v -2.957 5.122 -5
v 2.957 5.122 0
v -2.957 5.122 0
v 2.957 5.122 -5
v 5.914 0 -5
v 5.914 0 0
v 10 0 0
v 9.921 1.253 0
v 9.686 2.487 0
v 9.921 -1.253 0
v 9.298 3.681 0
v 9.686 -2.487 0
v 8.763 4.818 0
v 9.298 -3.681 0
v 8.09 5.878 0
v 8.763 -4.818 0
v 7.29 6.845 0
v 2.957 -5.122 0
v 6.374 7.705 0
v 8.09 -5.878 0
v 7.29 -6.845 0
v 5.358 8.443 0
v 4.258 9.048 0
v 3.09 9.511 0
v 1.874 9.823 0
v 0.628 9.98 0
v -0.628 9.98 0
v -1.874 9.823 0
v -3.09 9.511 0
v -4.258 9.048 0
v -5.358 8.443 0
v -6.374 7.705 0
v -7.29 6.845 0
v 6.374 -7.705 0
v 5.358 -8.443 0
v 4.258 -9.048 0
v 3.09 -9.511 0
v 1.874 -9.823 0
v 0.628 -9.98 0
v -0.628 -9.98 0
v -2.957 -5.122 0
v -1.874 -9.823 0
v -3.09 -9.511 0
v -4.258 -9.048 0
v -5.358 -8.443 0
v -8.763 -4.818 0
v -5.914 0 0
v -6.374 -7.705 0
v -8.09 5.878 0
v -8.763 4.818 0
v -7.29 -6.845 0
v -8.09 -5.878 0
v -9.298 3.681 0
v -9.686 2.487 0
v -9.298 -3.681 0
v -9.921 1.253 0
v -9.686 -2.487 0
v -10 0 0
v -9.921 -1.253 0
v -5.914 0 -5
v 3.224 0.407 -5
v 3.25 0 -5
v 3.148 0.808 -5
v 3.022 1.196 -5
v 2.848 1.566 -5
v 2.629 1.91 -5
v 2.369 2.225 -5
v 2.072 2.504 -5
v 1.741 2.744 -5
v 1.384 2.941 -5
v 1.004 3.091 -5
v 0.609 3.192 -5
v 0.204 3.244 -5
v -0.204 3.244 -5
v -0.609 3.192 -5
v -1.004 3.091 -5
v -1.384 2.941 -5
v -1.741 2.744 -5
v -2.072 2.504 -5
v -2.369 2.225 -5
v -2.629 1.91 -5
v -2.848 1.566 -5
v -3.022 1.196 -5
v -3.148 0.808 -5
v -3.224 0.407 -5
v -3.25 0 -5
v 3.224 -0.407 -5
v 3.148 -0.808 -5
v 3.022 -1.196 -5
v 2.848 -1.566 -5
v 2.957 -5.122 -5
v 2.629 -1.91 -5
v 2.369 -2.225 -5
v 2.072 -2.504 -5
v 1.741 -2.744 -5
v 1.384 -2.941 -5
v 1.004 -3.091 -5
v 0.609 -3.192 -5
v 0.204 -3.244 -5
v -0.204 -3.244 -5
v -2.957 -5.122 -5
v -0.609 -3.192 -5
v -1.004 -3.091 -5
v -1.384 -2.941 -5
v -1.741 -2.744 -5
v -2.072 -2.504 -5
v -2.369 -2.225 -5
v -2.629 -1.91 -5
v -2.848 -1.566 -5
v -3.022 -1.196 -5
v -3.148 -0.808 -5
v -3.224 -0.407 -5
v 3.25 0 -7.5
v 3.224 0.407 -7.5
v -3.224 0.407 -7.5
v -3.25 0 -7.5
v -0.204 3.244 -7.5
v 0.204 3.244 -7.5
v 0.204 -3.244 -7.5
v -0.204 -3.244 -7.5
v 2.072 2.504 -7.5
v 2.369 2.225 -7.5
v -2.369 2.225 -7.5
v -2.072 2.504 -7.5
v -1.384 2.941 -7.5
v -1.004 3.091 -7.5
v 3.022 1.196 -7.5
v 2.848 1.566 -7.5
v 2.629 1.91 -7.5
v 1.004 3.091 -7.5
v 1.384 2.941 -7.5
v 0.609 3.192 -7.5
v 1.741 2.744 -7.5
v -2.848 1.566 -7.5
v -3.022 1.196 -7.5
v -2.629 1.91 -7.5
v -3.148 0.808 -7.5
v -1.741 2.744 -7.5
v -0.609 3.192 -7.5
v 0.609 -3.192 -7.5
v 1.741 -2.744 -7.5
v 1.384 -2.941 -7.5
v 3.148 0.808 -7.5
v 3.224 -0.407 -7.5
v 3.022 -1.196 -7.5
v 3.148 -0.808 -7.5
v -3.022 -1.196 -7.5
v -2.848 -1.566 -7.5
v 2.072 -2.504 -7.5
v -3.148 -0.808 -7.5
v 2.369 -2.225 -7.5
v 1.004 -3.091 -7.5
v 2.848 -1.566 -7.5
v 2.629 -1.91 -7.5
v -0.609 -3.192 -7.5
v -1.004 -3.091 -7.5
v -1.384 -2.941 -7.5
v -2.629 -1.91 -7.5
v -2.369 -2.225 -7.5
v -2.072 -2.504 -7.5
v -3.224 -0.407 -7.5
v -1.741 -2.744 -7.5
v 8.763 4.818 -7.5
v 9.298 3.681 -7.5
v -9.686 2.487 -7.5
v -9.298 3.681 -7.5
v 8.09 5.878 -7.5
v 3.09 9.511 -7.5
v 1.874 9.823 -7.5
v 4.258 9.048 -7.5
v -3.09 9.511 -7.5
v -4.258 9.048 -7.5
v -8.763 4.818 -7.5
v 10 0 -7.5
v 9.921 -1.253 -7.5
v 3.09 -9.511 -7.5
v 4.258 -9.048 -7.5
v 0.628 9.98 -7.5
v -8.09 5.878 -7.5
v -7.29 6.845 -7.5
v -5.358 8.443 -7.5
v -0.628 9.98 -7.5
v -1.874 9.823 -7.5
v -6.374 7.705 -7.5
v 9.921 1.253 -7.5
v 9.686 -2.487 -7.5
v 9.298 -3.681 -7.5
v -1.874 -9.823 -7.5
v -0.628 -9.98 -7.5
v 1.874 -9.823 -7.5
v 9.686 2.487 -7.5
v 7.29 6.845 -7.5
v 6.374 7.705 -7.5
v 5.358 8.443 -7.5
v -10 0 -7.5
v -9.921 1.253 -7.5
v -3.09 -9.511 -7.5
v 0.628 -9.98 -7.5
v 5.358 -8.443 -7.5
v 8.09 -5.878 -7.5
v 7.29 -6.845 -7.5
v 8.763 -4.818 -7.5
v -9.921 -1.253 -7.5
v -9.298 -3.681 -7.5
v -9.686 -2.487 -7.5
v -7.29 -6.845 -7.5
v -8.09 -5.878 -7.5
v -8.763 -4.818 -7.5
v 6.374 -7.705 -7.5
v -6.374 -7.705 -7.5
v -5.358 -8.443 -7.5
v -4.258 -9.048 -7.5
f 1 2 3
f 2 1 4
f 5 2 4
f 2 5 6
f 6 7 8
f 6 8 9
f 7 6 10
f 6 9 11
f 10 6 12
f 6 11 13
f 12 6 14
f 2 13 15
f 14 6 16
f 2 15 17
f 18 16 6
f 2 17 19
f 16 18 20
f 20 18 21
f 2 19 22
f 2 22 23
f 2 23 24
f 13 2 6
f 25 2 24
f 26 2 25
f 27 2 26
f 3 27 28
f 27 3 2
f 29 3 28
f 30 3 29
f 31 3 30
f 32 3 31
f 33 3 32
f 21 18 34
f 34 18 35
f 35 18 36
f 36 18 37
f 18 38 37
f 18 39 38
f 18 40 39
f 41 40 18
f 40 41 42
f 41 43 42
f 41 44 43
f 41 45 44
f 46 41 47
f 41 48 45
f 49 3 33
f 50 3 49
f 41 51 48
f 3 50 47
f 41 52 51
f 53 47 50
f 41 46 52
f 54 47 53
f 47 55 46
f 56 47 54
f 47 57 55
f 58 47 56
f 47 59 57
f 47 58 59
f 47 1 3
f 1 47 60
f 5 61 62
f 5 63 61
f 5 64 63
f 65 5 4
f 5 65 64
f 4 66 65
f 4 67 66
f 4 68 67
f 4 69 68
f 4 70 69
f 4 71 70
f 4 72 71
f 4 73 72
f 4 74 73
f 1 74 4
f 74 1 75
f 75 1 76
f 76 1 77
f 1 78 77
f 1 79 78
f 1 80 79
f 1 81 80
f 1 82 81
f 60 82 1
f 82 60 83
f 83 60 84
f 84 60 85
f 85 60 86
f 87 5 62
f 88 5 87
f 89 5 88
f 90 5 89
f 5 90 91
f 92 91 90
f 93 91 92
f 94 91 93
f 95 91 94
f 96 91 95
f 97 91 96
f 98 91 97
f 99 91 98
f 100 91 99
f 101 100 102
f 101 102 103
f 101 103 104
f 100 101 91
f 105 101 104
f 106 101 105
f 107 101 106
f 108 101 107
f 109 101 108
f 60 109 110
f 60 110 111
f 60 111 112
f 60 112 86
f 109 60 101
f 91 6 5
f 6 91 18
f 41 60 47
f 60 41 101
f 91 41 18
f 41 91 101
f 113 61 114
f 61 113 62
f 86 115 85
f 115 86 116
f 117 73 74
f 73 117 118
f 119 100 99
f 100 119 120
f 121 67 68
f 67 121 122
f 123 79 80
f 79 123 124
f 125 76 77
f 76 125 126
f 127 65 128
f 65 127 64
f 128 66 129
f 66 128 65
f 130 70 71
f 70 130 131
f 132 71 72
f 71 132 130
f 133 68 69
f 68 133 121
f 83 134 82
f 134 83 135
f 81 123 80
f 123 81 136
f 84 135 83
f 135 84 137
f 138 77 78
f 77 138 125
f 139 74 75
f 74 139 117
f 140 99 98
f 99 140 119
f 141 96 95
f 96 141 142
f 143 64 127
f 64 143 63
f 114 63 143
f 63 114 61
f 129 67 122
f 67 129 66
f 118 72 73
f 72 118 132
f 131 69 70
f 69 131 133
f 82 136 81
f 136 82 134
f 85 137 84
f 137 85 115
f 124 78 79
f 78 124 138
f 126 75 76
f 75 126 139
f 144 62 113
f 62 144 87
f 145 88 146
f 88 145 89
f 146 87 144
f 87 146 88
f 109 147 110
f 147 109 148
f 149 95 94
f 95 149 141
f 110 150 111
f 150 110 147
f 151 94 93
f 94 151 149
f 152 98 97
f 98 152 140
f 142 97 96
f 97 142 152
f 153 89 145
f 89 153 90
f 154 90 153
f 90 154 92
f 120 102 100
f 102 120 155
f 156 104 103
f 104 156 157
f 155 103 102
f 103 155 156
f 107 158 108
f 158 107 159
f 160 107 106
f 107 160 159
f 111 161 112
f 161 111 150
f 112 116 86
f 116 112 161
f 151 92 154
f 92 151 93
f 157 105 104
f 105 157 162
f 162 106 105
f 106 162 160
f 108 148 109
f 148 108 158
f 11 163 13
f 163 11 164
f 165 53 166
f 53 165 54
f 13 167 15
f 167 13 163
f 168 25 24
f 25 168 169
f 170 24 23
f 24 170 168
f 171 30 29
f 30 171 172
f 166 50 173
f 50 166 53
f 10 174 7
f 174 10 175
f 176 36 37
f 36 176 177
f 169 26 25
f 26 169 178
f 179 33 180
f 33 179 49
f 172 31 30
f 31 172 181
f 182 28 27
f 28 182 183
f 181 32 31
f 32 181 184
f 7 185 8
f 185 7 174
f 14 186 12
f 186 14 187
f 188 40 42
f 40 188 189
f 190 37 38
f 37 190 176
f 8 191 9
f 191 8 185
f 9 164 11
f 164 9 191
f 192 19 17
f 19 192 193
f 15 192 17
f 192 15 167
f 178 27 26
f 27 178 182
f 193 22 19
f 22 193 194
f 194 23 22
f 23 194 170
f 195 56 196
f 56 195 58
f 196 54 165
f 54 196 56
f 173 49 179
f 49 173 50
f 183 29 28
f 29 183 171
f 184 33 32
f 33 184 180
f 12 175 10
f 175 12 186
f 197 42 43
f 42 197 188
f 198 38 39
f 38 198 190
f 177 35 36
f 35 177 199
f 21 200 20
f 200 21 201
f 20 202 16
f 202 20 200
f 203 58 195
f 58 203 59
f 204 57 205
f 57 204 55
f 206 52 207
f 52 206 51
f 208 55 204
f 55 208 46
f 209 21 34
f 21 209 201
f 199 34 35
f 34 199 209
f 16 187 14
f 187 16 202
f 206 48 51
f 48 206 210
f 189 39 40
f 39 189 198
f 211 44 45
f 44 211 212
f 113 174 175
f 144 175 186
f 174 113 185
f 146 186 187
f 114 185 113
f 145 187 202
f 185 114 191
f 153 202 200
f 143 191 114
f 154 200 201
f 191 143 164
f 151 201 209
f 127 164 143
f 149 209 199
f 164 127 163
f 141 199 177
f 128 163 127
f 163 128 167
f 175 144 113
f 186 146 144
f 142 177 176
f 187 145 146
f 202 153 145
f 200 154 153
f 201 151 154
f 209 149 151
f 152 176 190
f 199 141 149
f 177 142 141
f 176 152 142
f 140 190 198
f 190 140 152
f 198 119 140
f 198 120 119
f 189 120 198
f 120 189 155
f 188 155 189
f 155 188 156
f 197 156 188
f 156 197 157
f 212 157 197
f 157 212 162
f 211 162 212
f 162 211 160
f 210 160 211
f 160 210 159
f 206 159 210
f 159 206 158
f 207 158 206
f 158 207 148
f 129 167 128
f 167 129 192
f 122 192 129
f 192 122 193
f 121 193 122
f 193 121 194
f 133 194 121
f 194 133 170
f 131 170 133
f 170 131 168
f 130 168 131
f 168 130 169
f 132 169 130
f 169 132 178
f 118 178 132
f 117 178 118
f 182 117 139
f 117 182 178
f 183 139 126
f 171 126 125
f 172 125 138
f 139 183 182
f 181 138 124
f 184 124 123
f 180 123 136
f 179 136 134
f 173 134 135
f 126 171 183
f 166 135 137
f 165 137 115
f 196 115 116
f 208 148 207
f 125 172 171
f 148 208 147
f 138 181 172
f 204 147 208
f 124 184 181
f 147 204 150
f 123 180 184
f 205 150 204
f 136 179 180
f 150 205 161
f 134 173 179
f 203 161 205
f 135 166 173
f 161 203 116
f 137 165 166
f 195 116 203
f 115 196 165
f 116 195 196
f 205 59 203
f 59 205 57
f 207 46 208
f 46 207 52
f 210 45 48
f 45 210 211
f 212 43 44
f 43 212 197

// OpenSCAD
$fn = 50;

difference() {
	union() {
		translate(v = [0, 0, -7.5]) {
			cylinder(h = 7.5, r = 10.0);
		}
	}
	union() {
		translate(v = [0, 0, 0]) {
			rotate(a = [0, 0, 0]) {
				difference() {
					union() {
						translate(v = [0, 0, -5]) {
							linear_extrude(height = 5) {
								polygon(points = [[5.914249999999999, 0.0], [2.957125, 5.1218907443321156], [-2.9571249999999982, 5.1218907443321156], [-5.914249999999999, 7.242867331857232e-16], [-2.9571250000000022, -5.121890744332115], [2.9571249999999956, -5.121890744332118]]);
							}
						}
					}
					union();
				}
			}
		}
		#translate(v = [0, 0, -100.0]) {
			cylinder(h = 200, r = 3.25);
		}
	}
}
